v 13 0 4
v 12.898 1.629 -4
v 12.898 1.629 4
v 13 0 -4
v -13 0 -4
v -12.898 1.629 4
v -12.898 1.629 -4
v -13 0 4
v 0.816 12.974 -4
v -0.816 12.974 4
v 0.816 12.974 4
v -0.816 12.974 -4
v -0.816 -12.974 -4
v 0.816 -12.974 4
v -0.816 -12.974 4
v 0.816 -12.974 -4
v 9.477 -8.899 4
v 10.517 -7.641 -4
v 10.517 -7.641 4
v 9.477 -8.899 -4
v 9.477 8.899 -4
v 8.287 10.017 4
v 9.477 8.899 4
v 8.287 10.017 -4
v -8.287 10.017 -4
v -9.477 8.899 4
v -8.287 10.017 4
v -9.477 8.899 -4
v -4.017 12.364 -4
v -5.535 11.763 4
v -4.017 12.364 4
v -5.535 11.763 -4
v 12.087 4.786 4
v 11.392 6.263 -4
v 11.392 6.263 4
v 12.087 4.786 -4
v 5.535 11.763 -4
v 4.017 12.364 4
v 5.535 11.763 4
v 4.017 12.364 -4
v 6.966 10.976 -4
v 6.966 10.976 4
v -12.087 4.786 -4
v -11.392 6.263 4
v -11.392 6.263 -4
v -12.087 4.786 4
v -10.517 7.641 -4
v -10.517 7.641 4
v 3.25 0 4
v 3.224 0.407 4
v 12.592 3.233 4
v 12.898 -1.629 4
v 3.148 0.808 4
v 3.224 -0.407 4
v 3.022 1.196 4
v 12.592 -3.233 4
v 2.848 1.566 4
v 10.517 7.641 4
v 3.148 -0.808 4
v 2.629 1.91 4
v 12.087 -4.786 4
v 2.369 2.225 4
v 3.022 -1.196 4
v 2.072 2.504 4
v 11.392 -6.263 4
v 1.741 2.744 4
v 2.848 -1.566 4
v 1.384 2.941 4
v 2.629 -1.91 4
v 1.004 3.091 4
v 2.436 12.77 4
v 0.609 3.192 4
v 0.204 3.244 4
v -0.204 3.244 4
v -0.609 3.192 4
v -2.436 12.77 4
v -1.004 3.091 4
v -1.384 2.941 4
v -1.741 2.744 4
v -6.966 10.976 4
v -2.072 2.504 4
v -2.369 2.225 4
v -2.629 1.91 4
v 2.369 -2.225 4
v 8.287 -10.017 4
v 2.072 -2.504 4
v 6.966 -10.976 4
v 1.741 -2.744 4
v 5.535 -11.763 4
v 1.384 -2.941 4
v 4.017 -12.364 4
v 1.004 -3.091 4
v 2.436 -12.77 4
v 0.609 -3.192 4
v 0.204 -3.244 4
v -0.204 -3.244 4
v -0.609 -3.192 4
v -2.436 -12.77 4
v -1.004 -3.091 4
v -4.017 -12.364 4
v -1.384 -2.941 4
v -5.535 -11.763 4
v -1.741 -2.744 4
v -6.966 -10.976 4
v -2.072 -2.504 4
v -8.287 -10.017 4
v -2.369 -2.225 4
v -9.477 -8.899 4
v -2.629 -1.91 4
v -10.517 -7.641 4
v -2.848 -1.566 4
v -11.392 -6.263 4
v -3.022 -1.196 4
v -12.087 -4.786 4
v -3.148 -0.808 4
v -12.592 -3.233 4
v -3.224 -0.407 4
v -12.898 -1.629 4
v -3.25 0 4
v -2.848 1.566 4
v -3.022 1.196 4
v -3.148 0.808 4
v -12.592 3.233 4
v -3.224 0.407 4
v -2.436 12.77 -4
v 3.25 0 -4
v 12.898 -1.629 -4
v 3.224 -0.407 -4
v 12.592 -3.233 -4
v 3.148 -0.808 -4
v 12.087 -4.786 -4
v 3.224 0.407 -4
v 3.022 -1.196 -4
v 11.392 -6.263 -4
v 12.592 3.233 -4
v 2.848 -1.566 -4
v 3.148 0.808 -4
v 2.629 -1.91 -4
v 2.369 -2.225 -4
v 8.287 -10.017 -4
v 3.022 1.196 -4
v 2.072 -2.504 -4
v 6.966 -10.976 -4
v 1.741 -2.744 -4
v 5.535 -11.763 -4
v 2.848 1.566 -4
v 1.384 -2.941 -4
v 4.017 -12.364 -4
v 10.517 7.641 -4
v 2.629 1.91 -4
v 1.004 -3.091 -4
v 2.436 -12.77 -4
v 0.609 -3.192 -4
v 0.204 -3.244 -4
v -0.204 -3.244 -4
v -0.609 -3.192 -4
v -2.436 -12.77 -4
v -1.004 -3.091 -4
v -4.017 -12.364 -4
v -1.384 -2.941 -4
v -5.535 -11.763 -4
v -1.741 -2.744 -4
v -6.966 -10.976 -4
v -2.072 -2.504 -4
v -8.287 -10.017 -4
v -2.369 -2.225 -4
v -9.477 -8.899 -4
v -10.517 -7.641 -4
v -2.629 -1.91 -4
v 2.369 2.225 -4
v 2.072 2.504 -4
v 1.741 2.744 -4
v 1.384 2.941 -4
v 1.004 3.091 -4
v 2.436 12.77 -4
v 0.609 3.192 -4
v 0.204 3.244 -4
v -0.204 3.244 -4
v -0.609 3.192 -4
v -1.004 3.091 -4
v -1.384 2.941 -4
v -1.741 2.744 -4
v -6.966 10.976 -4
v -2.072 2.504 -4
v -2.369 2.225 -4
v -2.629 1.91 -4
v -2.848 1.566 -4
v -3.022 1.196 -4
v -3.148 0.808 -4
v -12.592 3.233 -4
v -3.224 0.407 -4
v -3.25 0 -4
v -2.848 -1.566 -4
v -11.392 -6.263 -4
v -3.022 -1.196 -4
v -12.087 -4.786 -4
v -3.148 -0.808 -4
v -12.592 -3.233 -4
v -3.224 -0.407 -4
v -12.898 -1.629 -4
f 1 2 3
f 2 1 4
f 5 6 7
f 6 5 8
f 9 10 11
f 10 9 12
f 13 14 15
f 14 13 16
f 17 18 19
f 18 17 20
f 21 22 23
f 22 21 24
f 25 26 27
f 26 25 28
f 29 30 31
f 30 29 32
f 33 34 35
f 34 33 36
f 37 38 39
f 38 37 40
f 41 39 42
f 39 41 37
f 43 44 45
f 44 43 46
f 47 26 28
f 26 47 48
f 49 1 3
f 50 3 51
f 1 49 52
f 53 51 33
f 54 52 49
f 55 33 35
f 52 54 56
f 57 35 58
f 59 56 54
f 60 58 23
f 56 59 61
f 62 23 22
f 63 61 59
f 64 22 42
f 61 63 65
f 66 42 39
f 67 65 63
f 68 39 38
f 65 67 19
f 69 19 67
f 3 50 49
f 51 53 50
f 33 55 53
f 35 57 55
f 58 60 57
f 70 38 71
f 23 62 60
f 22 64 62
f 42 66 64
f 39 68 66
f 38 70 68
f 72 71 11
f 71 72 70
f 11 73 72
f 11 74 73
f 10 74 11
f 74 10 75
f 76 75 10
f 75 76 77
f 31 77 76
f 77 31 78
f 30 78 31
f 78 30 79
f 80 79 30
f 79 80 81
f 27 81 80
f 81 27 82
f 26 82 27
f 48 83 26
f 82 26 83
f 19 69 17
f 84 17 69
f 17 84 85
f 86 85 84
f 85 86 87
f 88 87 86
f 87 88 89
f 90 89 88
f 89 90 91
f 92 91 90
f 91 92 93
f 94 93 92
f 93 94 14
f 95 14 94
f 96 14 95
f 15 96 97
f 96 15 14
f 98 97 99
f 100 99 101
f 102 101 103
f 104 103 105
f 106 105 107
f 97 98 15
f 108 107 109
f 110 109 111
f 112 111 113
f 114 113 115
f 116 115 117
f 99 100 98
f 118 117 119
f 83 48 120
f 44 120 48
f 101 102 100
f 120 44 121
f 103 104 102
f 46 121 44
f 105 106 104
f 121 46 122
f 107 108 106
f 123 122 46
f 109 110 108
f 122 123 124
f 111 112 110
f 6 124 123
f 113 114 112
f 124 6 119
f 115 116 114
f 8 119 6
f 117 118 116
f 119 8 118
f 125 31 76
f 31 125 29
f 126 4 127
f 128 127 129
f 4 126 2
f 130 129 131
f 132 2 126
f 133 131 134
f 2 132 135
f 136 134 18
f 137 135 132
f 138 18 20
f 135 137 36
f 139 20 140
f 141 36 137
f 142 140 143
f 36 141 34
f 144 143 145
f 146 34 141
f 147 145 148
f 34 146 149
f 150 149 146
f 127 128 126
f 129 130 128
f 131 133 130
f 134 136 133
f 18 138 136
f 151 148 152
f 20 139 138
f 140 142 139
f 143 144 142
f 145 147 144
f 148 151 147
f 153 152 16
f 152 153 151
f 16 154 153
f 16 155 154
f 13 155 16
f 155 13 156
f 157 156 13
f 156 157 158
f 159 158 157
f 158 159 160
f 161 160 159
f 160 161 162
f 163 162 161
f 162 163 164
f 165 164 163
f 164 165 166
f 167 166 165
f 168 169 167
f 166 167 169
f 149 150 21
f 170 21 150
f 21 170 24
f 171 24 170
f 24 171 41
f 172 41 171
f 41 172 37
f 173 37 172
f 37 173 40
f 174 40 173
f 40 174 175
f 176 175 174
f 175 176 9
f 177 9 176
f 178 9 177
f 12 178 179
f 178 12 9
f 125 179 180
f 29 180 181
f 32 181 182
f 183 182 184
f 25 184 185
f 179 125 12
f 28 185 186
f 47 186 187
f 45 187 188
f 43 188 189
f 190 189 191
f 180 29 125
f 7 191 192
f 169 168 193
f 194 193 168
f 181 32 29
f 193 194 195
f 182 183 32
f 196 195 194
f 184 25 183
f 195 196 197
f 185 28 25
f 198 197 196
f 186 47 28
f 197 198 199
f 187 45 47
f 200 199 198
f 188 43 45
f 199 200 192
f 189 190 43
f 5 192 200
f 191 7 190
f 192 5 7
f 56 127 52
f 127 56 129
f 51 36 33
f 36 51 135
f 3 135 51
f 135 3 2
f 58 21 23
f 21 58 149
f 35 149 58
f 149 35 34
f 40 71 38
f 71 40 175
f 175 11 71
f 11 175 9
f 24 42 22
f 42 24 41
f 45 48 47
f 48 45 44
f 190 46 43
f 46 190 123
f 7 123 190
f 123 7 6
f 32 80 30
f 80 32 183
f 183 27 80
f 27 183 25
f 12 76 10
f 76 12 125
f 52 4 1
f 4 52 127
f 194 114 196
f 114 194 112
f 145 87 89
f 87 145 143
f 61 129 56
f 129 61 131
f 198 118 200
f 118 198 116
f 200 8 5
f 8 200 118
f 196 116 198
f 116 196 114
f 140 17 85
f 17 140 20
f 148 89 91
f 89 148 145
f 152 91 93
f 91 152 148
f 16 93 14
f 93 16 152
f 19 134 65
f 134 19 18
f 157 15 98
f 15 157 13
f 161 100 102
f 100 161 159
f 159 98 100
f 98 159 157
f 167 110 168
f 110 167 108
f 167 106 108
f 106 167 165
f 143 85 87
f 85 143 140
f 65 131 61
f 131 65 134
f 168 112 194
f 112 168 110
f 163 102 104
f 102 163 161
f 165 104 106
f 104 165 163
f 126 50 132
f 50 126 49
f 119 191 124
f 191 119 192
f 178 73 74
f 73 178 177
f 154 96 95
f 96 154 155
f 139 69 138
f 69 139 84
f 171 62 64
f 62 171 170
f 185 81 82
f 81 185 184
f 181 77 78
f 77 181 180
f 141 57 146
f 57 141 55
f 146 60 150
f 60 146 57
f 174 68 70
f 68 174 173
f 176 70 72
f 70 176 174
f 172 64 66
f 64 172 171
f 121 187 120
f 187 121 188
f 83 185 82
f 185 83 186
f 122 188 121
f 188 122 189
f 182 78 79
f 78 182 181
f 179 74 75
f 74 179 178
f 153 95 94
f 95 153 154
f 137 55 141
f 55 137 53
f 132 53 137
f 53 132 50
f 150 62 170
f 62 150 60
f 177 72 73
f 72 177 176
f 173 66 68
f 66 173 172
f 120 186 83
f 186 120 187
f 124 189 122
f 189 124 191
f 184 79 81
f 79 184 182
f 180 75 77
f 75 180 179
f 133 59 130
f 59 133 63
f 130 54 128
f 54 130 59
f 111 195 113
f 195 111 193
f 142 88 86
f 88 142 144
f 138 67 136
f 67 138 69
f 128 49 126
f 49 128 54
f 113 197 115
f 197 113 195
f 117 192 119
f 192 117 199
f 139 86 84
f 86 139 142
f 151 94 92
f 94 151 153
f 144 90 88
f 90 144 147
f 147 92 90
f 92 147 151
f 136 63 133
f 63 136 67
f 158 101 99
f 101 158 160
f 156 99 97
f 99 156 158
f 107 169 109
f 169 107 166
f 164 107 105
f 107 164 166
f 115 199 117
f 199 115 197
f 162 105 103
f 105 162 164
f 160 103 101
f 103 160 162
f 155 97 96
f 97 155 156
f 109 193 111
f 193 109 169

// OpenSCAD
$fn = 50;


difference() {
	union() {
		translate(v = [0, 0, -4.0000000000]) {
			cylinder(h = 8, r = 13.0000000000);
		}
	}
	union() {
		translate(v = [0, 0, -100.0000000000]) {
			cylinder(h = 200, r = 3.2500000000);
		}
	}
}
